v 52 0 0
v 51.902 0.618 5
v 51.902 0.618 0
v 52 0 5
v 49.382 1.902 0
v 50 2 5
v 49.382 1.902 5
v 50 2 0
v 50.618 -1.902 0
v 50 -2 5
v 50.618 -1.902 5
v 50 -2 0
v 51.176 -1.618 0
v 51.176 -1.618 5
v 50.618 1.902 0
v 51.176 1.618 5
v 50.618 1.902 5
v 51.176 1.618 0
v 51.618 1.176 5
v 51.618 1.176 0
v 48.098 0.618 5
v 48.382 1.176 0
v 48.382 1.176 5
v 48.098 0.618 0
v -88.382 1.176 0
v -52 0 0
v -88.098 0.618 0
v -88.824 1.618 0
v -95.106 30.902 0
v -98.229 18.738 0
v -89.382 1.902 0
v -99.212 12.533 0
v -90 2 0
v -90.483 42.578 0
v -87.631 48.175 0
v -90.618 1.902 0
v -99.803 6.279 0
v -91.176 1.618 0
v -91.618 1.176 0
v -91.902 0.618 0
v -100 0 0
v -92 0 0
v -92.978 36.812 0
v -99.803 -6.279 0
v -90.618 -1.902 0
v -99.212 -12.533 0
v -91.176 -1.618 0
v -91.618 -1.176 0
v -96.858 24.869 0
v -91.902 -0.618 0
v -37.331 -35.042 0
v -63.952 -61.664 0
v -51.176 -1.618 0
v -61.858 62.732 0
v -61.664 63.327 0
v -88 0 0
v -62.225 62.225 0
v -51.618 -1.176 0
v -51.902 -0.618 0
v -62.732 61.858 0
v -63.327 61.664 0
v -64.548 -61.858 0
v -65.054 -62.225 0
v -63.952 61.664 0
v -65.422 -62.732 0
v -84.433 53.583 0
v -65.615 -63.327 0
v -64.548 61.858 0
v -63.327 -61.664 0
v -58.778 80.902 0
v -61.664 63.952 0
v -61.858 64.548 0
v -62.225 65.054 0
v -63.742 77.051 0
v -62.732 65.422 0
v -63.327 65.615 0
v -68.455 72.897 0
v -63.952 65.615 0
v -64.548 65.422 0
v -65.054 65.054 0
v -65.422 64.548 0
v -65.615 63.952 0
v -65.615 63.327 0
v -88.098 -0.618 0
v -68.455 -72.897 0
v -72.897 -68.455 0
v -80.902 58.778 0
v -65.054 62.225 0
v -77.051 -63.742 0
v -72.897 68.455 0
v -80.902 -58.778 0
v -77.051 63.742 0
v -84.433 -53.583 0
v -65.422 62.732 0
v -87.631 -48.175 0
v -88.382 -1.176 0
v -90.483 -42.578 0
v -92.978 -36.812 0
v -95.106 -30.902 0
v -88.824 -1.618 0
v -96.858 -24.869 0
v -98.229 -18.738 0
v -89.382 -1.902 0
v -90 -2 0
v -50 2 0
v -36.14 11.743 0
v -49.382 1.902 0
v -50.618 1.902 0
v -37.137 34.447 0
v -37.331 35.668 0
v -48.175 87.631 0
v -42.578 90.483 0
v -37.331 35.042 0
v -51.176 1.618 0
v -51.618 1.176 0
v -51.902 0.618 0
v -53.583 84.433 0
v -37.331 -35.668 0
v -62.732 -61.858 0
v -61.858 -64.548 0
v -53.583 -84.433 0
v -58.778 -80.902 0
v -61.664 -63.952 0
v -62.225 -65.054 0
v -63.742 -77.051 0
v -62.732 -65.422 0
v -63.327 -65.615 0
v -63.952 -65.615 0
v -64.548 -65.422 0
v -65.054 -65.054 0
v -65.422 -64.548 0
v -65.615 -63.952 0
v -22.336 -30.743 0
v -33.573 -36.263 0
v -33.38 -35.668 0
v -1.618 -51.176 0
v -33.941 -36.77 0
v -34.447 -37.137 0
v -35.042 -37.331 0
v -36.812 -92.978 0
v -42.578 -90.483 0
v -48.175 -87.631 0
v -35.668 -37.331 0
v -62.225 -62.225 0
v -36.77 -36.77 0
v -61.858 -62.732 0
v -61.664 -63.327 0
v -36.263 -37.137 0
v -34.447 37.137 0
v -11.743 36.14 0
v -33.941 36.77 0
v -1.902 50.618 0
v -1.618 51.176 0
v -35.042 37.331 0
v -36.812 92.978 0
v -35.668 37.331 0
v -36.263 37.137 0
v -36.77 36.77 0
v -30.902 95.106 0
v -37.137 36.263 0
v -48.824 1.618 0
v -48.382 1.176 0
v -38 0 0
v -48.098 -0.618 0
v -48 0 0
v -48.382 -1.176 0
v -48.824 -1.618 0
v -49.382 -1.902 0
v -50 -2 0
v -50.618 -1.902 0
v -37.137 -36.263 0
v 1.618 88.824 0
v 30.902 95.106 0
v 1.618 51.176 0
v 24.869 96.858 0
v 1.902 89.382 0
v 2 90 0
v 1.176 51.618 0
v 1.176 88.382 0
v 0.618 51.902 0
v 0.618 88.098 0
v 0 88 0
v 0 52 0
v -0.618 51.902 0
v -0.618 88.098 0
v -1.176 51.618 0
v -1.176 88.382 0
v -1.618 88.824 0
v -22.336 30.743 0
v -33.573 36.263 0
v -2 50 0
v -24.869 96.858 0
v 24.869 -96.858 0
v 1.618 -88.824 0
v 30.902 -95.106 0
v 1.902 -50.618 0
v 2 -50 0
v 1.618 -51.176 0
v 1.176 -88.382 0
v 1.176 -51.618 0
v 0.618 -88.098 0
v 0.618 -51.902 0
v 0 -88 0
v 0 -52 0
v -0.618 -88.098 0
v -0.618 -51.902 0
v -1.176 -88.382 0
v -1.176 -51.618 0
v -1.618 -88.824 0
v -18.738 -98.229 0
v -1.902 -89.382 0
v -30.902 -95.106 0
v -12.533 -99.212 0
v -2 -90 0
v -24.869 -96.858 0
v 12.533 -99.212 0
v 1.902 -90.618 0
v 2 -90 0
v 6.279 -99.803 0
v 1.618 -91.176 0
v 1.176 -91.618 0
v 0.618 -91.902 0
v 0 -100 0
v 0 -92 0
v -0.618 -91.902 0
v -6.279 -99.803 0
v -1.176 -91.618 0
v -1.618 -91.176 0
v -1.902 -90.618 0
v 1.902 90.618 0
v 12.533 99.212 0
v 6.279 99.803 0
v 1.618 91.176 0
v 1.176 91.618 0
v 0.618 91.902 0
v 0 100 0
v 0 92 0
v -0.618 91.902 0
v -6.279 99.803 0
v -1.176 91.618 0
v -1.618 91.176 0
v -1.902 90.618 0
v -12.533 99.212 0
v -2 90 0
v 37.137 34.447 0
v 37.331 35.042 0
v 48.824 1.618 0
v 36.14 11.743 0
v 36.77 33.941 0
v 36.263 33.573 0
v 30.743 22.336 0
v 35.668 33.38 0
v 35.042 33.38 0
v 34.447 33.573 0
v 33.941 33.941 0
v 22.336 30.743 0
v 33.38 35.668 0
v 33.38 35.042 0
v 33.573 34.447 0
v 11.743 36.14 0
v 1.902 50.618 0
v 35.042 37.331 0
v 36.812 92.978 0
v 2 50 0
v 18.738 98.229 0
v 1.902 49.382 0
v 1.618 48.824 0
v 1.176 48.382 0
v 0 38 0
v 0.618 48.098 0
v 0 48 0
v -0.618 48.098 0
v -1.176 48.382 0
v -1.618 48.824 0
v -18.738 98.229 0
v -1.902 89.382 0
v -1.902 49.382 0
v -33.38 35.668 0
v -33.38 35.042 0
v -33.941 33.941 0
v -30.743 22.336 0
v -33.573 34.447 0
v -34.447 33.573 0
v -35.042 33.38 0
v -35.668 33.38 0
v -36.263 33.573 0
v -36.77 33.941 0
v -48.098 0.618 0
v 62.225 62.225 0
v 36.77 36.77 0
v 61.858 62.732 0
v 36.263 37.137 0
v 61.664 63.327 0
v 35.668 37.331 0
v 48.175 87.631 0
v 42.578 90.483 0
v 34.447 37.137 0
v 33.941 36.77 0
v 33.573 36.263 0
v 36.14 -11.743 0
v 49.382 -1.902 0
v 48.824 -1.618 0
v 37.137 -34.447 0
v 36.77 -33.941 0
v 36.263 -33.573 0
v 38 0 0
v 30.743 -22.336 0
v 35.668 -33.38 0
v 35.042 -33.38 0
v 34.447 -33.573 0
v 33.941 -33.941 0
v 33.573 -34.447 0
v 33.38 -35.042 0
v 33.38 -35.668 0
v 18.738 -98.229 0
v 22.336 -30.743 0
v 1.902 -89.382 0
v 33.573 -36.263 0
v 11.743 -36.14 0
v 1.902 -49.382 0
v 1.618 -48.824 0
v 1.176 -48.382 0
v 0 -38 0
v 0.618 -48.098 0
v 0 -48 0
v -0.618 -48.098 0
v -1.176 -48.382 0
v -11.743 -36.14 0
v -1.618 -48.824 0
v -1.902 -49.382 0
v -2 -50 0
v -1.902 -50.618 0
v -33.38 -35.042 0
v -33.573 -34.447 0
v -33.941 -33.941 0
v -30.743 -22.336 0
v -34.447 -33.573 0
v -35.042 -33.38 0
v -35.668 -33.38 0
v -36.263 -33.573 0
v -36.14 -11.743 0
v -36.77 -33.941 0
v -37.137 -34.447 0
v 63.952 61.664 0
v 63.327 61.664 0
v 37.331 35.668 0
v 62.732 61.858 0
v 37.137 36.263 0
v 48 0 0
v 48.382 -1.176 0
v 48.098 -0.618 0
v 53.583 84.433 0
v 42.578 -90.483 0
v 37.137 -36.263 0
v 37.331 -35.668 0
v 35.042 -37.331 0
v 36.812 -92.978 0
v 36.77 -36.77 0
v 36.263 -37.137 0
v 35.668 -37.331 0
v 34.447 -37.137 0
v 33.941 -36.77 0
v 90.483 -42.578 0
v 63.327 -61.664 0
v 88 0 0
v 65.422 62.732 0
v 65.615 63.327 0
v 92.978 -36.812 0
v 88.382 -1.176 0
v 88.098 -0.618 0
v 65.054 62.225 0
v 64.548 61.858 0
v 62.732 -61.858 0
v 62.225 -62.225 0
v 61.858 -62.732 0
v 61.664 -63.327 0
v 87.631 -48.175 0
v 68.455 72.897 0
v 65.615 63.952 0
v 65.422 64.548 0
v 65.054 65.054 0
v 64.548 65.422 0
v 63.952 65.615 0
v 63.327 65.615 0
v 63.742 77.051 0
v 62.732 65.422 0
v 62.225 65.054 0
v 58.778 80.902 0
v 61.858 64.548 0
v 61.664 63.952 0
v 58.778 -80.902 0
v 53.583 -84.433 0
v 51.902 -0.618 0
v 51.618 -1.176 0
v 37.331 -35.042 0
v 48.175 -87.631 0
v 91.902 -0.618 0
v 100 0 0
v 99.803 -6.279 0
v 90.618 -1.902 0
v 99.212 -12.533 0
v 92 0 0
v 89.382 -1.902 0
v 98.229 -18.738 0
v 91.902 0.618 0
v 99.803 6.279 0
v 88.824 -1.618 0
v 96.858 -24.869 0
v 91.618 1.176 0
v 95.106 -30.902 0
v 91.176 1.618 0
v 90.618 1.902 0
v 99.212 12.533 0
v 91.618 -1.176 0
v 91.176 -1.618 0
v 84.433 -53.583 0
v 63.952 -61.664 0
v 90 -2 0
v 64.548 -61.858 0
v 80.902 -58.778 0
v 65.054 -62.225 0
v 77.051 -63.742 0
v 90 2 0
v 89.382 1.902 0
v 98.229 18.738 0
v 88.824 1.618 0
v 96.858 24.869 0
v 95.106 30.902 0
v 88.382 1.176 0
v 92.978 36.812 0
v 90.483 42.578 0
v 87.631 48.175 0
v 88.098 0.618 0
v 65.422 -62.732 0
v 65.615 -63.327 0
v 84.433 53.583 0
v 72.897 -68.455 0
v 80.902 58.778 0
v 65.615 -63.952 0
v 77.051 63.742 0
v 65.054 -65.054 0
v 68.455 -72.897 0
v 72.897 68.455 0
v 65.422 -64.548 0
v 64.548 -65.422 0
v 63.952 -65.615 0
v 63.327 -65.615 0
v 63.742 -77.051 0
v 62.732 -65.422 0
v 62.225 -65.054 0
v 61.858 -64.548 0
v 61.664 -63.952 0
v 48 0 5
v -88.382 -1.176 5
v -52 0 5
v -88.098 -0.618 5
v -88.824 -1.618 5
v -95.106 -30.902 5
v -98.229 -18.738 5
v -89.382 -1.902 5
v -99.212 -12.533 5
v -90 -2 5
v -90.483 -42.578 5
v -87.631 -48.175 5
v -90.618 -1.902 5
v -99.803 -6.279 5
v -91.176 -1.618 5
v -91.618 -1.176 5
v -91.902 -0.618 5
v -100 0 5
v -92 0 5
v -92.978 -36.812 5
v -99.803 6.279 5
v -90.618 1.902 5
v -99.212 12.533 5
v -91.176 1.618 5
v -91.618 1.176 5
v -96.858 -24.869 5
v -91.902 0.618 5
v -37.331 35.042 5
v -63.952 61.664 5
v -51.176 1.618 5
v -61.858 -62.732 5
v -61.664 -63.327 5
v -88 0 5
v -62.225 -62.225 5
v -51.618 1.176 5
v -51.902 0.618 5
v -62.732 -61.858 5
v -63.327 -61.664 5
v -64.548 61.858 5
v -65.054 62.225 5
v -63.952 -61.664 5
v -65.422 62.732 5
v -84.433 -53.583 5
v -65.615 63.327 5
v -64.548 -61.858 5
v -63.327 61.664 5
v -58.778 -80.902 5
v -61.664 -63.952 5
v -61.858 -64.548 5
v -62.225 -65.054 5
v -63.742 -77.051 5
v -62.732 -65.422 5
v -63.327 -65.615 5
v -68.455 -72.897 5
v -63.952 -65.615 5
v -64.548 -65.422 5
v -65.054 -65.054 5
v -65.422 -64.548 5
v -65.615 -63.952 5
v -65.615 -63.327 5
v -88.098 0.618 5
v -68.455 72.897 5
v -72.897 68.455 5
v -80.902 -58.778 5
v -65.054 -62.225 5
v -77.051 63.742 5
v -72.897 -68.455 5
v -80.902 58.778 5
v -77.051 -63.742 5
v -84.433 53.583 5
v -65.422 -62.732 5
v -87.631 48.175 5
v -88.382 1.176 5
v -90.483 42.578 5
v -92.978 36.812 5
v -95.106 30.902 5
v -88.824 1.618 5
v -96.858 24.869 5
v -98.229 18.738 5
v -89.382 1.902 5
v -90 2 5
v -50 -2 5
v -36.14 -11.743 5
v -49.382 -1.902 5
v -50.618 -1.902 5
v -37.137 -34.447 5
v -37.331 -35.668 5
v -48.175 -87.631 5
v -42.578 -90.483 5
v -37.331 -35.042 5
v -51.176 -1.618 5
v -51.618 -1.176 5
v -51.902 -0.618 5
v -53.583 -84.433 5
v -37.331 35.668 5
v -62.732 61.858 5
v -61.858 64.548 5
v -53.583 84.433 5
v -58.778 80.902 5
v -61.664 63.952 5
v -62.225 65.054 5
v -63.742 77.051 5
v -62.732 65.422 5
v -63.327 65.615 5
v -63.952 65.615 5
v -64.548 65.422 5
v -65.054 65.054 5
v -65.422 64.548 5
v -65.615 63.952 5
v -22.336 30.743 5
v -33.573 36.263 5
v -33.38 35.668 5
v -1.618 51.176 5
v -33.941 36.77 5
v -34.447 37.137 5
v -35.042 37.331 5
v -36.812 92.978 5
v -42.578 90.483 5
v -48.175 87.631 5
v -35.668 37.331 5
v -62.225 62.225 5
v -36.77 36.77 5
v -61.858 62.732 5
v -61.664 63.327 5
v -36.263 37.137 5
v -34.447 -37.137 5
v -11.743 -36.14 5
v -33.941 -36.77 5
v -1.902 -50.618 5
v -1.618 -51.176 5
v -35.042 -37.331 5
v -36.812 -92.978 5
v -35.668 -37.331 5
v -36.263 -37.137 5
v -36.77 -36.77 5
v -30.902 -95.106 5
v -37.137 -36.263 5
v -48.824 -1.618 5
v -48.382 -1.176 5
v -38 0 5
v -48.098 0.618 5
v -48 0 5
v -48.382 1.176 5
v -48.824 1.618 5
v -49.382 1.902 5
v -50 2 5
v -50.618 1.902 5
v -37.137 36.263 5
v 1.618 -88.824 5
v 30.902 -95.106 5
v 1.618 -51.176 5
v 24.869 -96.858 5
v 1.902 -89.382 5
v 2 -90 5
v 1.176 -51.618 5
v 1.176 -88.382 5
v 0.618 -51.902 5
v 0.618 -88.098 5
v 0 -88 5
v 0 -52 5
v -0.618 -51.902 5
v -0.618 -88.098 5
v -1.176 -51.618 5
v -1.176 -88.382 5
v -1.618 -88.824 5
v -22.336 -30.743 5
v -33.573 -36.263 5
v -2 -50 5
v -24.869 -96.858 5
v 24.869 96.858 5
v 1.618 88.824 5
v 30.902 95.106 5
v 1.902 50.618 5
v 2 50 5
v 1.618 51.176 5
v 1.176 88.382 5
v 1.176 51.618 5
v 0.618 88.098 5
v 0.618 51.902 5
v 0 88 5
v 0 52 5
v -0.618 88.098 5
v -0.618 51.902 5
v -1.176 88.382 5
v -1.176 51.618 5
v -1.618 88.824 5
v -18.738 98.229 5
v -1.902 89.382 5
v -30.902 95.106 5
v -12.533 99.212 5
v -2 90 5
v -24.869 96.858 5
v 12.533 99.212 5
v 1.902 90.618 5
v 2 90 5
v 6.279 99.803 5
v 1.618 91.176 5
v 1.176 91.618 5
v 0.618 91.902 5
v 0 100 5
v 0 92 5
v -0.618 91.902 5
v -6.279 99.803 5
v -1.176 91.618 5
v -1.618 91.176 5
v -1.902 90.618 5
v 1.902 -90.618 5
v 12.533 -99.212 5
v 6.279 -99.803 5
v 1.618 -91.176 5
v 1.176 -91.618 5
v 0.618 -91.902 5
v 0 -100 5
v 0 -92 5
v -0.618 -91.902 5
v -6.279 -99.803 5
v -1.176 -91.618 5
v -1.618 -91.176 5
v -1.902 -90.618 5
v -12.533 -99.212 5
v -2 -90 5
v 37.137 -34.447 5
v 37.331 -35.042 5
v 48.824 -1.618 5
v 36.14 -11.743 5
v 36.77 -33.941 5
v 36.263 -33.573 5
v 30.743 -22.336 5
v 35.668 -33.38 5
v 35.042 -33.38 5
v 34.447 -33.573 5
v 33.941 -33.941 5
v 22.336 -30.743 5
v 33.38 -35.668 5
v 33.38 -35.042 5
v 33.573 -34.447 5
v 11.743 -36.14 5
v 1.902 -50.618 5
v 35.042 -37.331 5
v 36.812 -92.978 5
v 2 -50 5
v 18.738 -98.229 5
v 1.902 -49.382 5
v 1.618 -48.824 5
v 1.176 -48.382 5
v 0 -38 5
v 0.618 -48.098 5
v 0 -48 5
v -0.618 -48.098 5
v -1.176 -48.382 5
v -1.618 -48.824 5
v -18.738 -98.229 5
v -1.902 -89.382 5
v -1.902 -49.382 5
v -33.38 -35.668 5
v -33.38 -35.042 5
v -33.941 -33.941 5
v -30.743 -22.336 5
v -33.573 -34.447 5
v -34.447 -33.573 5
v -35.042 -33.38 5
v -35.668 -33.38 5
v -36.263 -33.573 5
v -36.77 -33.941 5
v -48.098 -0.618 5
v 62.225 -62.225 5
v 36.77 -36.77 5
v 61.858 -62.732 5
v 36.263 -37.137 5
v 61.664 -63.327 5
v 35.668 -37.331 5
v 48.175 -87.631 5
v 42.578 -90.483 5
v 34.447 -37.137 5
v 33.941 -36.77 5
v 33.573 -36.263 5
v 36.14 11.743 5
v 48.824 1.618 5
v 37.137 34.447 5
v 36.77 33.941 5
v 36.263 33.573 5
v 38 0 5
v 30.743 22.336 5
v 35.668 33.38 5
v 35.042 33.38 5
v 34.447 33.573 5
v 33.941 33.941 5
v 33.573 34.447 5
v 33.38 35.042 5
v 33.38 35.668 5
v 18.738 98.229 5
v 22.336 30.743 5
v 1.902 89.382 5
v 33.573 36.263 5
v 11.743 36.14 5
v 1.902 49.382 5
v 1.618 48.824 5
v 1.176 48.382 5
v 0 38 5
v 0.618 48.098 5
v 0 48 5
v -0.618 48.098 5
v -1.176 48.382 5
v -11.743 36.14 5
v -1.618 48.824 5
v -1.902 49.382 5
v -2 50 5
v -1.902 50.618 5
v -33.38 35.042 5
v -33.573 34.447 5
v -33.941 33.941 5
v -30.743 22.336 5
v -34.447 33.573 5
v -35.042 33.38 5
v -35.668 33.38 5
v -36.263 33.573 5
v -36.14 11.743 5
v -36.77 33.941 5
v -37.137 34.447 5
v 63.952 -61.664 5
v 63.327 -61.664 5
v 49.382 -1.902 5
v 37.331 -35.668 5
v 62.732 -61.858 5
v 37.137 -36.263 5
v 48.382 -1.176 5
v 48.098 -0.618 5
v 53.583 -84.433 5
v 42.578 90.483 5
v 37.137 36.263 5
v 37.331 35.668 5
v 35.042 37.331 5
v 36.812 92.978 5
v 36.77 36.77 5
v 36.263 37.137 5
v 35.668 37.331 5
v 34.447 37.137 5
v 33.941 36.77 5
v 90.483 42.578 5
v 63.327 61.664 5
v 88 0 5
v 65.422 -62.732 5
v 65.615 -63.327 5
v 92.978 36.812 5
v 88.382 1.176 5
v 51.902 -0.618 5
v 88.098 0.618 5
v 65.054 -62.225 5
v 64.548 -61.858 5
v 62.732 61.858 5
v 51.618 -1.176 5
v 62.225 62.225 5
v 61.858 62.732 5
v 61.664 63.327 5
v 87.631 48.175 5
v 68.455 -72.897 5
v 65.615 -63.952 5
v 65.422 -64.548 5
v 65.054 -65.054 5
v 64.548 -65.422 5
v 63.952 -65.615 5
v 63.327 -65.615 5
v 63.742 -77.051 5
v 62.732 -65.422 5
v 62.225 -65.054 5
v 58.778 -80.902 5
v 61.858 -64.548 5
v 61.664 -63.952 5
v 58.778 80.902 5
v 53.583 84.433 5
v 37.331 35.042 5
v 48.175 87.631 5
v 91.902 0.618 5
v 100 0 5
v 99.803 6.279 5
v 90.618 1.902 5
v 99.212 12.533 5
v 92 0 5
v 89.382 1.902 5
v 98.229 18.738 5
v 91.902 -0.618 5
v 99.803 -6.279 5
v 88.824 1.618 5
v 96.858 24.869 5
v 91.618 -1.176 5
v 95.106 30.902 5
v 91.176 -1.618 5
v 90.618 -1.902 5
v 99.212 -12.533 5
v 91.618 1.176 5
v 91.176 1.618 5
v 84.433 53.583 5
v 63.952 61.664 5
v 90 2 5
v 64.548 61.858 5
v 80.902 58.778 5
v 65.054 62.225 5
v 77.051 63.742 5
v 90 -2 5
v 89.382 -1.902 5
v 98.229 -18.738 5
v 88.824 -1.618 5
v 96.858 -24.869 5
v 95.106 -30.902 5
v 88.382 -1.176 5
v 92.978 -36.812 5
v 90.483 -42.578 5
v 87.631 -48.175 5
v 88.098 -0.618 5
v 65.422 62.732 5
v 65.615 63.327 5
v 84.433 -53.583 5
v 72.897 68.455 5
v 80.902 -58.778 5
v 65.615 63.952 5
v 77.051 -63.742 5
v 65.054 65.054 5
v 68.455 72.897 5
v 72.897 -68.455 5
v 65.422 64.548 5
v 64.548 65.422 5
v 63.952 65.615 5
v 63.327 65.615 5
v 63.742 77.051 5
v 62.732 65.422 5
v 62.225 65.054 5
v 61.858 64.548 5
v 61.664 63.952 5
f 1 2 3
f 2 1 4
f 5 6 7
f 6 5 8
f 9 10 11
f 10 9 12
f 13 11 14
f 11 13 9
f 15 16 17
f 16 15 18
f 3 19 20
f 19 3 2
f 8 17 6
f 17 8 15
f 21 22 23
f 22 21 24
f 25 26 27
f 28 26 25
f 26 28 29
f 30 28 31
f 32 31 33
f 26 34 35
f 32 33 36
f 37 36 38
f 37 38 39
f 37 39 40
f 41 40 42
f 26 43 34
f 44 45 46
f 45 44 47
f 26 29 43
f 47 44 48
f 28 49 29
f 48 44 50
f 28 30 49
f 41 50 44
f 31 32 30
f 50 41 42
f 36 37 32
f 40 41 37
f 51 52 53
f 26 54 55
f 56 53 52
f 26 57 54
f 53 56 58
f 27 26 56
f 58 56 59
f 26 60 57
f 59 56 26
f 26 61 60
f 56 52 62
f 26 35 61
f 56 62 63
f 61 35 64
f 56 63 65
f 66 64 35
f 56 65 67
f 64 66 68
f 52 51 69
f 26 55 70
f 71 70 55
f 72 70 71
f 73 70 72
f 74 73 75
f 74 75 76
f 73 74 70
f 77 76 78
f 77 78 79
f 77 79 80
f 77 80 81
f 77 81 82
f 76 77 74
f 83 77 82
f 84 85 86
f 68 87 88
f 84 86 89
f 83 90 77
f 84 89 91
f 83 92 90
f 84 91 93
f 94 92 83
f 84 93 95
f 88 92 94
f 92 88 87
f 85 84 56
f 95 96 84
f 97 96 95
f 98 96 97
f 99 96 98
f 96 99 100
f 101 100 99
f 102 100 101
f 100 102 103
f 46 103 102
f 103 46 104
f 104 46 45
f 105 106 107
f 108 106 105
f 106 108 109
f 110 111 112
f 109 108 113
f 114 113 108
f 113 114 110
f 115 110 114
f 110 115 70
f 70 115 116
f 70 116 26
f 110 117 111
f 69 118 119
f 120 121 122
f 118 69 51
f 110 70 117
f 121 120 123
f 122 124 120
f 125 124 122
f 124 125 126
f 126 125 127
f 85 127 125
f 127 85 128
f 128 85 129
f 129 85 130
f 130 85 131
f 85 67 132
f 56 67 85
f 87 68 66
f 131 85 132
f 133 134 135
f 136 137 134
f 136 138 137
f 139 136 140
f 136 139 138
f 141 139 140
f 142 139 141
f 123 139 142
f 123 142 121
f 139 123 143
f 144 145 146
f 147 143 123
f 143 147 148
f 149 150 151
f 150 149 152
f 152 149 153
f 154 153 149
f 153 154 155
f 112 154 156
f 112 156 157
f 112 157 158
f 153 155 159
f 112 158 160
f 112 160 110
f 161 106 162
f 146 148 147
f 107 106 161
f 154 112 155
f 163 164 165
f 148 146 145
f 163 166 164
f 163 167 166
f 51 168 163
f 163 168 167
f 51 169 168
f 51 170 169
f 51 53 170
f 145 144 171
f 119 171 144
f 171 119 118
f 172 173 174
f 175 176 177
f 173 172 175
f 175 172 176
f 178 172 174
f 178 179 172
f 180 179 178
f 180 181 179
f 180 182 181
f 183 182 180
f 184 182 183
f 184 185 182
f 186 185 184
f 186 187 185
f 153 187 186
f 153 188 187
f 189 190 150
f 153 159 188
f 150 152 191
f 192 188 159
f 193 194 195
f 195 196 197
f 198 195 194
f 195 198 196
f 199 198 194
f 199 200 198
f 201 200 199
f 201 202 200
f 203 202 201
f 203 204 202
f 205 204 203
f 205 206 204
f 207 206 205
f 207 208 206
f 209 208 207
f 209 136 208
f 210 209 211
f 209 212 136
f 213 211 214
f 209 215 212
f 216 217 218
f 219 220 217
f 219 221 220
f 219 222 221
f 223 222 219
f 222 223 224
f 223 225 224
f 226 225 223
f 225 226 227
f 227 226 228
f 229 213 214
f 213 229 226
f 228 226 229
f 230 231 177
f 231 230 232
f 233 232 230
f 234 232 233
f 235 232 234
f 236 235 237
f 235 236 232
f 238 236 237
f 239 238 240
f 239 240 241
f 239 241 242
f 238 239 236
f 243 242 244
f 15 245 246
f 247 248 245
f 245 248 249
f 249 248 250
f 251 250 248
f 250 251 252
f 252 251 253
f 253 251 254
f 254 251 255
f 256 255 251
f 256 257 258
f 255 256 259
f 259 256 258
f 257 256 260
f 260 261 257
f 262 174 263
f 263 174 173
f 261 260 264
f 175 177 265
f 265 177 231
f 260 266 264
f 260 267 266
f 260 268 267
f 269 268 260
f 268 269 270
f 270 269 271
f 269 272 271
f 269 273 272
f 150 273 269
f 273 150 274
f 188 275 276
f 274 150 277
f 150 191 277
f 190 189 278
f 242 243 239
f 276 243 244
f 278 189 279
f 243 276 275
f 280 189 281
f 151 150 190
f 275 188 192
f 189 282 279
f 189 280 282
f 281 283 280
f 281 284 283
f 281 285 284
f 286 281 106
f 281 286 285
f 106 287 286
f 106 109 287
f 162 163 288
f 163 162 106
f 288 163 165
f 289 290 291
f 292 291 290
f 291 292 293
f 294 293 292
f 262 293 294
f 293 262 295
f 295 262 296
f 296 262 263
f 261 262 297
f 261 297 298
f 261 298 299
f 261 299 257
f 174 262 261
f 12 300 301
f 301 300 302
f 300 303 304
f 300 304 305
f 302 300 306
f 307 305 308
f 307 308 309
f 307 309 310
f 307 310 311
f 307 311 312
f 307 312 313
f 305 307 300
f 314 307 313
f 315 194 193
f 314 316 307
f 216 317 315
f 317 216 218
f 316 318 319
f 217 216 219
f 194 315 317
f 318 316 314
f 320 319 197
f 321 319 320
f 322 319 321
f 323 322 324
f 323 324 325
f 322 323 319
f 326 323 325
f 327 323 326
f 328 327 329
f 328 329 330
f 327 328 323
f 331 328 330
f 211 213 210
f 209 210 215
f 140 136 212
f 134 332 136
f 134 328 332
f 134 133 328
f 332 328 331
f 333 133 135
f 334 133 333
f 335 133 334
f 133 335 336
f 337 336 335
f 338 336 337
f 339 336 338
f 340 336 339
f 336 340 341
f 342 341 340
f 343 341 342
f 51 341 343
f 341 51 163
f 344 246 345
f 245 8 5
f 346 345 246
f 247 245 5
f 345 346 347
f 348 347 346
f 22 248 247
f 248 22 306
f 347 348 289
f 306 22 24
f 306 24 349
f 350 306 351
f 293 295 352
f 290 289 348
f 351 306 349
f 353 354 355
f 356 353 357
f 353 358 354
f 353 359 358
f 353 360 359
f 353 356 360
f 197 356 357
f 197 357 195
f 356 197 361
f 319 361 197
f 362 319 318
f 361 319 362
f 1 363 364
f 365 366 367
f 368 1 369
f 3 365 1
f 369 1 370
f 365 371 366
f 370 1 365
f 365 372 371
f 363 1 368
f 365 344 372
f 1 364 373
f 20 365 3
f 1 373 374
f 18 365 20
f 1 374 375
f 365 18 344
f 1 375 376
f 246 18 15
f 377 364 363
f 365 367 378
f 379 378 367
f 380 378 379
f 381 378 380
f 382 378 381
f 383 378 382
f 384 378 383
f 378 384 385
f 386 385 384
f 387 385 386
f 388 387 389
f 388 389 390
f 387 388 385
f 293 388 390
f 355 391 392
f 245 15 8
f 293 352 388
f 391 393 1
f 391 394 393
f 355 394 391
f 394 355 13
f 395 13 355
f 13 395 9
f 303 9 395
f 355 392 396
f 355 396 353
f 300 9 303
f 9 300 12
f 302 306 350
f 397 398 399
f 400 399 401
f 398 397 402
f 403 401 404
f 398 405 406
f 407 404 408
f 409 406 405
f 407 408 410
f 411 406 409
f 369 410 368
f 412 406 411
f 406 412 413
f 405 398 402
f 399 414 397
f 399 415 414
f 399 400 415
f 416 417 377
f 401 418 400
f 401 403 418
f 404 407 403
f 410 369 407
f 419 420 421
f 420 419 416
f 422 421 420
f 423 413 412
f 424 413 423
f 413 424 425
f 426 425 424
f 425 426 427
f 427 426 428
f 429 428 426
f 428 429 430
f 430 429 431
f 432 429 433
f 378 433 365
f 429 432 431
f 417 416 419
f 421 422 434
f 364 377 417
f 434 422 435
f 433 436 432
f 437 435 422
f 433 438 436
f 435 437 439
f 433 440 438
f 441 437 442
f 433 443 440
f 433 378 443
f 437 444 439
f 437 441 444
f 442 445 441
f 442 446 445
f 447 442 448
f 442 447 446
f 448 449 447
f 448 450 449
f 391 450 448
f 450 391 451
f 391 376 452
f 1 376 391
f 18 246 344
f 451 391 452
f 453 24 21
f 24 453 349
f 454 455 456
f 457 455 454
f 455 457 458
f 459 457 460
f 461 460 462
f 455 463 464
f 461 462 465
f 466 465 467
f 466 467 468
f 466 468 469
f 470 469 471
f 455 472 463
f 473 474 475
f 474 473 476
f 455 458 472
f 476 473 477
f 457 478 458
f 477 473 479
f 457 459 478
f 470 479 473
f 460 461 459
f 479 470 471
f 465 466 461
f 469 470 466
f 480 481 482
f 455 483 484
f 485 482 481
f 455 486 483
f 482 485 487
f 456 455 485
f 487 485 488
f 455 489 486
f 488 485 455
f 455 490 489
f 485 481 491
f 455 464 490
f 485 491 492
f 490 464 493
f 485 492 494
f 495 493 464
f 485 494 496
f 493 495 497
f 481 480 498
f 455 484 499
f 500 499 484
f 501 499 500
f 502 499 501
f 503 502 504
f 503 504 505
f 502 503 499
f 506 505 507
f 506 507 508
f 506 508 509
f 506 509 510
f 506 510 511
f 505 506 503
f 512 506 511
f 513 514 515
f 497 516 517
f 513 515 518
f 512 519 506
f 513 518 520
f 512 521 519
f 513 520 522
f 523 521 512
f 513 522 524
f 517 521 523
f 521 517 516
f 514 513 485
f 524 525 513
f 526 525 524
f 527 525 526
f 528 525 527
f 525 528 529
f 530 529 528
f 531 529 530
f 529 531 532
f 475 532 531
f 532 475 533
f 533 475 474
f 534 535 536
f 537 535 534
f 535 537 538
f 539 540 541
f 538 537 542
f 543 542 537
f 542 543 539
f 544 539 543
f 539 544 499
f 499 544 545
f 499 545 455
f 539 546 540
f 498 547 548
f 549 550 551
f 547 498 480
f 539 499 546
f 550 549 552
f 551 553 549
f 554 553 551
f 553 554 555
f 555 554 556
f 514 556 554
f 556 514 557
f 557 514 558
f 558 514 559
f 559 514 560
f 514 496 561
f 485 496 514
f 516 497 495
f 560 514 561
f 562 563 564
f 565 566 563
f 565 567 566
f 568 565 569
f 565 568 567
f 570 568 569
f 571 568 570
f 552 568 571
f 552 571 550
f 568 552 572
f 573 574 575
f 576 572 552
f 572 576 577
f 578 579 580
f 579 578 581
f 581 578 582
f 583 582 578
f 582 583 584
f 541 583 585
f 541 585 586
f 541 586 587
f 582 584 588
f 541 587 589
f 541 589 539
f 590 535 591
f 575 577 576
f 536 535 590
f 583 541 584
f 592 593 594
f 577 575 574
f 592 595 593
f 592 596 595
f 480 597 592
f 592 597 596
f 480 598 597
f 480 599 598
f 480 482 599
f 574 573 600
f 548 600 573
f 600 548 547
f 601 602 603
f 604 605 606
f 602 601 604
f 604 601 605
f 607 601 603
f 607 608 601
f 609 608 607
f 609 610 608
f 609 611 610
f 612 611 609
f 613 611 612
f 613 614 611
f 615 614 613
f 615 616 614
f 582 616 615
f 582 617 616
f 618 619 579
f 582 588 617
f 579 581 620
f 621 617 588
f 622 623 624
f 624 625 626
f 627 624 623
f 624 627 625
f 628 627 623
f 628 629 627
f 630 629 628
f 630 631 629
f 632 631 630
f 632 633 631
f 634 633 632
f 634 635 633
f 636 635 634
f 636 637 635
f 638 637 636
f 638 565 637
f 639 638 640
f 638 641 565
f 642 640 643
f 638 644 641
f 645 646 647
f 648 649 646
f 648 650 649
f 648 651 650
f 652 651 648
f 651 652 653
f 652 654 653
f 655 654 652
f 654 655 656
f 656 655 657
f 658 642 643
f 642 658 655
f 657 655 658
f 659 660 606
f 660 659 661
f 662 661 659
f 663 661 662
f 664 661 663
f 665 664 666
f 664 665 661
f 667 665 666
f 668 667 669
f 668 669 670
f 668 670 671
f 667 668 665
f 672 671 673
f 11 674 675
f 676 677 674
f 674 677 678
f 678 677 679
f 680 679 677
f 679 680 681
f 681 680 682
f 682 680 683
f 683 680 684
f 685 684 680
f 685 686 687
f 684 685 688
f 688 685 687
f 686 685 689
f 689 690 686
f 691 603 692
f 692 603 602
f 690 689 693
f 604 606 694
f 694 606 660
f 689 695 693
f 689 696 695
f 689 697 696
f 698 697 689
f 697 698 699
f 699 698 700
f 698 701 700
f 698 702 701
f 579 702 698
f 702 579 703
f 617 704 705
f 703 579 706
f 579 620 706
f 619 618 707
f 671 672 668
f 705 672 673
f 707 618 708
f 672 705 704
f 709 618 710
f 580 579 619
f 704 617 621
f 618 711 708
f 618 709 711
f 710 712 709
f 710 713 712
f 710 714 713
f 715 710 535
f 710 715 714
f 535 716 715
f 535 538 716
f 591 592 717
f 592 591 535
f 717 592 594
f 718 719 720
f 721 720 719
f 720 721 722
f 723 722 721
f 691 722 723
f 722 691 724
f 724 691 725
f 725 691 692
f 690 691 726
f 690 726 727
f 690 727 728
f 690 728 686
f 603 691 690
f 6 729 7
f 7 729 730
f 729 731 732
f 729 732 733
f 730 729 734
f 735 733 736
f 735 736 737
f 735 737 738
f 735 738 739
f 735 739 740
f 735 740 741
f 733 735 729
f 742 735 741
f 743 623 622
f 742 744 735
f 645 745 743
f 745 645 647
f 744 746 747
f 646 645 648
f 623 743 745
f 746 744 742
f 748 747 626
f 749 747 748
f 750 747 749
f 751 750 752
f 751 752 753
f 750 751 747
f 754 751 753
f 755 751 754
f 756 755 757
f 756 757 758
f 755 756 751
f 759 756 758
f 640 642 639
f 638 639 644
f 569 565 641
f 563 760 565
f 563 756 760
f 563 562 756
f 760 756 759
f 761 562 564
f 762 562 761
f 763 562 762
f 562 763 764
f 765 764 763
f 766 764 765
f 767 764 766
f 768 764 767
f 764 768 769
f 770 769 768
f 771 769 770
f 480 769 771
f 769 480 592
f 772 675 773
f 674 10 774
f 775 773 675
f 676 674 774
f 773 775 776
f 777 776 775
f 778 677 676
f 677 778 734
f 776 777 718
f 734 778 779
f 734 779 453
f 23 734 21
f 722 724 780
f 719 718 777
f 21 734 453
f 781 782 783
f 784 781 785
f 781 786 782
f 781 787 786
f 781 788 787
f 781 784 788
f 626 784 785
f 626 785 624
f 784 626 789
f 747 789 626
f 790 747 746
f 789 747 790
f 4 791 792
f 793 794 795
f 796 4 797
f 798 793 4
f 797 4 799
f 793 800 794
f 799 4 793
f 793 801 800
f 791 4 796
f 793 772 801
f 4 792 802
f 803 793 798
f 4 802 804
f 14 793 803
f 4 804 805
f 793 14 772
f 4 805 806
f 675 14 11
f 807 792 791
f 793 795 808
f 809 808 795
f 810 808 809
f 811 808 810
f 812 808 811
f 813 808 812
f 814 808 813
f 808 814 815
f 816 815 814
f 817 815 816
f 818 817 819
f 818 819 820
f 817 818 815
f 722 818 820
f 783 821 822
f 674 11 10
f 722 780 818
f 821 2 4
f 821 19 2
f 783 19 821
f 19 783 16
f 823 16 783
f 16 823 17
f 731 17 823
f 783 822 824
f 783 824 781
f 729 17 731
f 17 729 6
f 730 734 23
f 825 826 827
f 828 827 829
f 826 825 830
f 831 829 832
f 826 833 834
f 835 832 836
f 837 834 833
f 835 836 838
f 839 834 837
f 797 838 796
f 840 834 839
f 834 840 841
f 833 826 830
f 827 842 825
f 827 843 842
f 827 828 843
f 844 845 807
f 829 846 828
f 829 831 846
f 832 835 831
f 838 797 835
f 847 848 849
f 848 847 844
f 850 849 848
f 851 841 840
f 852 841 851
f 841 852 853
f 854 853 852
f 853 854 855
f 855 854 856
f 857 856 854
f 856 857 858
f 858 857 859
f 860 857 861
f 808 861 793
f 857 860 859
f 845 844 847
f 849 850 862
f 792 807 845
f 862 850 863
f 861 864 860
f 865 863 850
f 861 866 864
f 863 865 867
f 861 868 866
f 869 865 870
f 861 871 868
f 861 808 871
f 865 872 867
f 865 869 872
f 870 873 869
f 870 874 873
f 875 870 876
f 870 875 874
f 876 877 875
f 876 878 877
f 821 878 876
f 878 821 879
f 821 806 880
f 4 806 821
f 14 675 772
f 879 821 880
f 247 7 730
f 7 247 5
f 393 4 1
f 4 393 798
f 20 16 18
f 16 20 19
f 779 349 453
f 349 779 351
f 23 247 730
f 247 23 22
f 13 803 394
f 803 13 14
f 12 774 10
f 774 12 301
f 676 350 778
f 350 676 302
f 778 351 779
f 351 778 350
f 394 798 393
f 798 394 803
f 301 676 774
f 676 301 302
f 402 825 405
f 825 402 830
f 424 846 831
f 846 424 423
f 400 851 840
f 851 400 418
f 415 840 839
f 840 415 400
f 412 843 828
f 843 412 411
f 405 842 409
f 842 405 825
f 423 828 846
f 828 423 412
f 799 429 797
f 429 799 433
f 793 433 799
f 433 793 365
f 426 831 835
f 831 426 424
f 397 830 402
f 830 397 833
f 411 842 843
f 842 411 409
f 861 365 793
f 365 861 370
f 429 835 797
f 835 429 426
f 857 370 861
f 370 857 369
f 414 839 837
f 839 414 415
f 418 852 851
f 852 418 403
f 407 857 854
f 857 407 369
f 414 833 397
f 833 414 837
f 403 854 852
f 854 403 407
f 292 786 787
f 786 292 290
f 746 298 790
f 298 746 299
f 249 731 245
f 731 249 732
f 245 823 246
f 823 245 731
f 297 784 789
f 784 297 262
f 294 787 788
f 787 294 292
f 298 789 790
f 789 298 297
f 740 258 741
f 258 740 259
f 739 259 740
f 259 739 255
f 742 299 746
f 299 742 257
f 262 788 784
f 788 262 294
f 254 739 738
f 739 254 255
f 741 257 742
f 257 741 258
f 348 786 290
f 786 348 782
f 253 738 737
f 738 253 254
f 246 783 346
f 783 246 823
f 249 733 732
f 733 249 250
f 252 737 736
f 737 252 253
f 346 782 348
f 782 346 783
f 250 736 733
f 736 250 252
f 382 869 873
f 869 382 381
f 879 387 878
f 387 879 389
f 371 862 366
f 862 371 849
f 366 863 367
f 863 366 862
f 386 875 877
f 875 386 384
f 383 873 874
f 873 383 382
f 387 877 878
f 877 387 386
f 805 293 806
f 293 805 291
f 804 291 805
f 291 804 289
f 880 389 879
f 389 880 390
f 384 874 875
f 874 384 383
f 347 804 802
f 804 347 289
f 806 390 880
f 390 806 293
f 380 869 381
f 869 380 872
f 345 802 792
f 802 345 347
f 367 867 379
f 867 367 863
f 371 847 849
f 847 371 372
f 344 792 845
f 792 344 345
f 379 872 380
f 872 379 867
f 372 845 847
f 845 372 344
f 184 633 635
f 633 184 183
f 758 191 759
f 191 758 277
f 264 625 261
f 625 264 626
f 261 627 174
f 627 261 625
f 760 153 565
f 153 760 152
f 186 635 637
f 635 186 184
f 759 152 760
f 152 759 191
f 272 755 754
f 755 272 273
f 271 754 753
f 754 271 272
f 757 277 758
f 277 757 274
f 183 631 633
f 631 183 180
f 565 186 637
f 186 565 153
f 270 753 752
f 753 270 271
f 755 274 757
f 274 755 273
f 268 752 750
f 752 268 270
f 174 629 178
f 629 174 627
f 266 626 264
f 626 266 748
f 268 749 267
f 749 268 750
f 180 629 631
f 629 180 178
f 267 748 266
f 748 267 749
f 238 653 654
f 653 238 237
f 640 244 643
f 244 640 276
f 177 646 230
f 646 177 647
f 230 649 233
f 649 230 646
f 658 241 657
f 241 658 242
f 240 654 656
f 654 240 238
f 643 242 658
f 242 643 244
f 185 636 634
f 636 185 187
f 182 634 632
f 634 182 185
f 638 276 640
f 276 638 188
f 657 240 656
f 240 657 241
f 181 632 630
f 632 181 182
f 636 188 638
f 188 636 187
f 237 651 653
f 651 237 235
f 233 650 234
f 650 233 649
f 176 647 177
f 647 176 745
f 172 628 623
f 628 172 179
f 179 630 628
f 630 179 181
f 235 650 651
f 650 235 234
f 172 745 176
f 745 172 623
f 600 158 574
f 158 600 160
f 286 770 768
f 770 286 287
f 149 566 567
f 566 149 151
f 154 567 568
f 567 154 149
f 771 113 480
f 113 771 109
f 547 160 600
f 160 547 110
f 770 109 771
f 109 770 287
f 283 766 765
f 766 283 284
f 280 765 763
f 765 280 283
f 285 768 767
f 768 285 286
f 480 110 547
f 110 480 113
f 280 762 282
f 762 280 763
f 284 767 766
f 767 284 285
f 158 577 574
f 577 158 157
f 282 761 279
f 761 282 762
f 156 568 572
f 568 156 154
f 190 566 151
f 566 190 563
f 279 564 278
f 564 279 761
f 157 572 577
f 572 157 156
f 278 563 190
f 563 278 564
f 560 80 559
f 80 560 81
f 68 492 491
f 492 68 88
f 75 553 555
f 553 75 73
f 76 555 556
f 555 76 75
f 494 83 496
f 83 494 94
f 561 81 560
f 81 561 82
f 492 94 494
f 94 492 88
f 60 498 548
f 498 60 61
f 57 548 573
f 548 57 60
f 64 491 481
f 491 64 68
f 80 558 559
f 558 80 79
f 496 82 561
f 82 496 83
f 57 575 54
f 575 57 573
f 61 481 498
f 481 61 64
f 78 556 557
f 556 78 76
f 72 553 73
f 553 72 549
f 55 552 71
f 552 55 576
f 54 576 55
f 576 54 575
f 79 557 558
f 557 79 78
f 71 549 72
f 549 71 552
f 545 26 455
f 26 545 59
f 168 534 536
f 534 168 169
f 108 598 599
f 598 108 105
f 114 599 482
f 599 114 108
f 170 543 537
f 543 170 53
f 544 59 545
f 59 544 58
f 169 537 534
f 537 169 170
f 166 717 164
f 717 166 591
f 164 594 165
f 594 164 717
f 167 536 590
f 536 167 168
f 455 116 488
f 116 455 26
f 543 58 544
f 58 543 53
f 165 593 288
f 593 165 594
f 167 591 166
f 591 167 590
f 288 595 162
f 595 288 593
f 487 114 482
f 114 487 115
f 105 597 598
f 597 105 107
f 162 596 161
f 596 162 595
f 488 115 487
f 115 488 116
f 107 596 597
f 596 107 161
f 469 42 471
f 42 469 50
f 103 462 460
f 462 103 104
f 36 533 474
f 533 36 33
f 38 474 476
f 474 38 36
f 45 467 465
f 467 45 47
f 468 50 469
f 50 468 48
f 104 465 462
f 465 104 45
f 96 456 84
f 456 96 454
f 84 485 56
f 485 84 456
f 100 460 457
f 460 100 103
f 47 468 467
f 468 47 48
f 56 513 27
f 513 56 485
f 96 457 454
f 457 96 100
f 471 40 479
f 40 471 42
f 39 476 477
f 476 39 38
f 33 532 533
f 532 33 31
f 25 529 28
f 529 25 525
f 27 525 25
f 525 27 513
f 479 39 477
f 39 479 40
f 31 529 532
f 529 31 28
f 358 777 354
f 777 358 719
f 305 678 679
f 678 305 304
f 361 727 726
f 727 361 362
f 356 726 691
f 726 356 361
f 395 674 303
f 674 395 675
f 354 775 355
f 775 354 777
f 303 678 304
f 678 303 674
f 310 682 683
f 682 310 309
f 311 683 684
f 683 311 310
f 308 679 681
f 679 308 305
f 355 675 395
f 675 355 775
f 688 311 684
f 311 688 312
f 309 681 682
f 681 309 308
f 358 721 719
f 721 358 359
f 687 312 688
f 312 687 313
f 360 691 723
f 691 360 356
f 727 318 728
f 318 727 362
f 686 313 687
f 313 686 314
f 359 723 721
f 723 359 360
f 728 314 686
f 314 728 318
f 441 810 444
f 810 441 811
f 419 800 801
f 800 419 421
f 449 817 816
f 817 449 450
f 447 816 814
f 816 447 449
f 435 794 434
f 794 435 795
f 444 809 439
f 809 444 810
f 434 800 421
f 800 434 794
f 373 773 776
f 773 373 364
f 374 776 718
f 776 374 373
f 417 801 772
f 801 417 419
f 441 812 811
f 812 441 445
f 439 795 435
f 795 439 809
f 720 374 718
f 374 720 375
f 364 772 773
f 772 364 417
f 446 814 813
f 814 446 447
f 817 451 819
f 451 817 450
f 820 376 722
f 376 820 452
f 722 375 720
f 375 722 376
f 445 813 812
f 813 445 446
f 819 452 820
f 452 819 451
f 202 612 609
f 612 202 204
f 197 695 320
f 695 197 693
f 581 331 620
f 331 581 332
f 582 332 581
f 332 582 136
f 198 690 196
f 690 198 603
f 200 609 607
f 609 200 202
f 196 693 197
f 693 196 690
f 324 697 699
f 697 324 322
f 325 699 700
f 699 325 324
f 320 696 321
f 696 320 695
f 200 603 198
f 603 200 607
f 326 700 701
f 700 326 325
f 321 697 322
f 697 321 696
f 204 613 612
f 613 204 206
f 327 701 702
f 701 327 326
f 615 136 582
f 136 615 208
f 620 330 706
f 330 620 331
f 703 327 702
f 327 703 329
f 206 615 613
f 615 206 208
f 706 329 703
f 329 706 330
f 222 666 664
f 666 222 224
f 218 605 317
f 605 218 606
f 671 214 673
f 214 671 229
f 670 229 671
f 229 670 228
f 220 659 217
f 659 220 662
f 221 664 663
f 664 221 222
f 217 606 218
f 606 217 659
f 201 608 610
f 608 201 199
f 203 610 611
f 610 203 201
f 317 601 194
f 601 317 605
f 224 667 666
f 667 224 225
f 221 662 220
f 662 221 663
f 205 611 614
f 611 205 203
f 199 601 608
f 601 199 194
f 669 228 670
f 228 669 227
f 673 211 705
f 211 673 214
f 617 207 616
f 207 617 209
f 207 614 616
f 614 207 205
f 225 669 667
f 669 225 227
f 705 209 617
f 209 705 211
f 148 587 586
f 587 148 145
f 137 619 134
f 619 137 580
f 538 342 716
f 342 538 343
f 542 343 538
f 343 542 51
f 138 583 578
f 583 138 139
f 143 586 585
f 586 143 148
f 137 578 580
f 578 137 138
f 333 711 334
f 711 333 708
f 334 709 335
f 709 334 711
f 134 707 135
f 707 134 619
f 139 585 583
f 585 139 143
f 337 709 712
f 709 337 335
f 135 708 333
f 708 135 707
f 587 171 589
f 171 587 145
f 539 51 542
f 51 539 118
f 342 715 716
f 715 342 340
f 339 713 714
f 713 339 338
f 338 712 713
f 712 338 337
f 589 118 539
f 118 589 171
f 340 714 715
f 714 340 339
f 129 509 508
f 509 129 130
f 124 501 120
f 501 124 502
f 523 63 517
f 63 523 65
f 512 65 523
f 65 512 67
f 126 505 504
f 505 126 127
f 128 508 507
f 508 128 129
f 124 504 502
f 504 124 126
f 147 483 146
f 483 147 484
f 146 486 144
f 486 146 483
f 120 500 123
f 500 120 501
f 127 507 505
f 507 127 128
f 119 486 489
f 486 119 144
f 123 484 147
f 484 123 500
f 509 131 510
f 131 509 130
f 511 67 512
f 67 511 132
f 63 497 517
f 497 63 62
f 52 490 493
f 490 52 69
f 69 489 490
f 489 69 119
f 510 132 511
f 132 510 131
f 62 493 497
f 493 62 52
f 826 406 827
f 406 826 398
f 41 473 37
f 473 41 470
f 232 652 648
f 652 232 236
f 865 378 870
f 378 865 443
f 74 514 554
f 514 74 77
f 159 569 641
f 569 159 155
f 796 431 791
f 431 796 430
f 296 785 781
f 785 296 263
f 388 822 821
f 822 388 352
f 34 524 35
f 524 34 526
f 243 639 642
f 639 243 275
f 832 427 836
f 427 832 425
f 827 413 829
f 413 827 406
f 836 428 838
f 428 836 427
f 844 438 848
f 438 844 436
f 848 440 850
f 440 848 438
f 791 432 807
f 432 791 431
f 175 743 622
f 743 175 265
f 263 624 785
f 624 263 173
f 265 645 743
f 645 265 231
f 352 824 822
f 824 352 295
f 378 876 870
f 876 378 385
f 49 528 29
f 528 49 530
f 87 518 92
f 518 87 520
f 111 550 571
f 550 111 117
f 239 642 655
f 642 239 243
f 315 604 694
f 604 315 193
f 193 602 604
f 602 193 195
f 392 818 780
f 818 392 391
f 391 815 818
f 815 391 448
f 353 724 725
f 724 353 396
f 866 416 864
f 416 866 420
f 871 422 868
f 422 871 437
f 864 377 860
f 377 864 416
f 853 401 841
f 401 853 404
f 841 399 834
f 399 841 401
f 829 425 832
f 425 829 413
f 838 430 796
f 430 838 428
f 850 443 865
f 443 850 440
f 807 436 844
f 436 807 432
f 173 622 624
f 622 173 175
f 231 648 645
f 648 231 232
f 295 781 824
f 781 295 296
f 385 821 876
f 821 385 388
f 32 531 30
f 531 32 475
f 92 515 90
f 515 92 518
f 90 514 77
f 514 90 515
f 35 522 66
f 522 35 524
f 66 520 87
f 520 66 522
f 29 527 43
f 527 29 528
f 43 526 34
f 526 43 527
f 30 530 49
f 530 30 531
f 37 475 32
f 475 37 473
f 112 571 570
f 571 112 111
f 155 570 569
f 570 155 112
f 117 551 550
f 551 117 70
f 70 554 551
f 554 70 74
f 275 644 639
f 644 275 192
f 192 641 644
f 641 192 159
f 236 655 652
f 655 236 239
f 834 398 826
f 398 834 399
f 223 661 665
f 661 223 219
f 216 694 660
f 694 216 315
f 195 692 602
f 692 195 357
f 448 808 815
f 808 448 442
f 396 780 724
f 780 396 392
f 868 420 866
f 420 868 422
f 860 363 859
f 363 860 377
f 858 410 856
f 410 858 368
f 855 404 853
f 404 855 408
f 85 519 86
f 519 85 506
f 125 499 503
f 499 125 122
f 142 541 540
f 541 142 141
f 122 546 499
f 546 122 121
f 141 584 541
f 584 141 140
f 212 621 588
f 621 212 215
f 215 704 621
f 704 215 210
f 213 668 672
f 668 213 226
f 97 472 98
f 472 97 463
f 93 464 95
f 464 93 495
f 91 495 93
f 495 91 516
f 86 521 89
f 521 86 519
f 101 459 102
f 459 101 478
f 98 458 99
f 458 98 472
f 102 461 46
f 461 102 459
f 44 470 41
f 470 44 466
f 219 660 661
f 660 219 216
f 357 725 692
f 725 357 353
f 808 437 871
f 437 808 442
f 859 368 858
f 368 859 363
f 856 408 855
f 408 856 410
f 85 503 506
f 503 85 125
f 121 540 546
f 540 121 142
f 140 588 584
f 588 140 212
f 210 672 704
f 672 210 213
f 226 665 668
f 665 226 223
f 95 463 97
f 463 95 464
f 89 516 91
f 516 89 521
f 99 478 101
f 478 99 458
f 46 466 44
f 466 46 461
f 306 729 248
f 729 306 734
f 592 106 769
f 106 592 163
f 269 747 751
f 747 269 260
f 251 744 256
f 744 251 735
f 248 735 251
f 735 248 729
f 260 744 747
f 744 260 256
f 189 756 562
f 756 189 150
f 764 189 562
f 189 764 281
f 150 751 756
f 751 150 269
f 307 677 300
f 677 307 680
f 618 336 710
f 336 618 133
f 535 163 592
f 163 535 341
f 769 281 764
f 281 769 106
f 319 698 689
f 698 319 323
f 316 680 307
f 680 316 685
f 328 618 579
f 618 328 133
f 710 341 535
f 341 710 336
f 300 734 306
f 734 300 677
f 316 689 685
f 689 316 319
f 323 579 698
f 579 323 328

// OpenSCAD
$fn=20;
difference(){
    //primary puck
    cylinder(r=100,h=5,$fn=100);
    //center hole for tools
    cylinder(r=38,h=5);
    //4mm holes for mounting things
    for (i =[0,45,90,135,180,-45,-90,-135]){
        rotate([0,0,i]){
            translate([50,0,0])cylinder(r=2,h=5);
            translate([90,0,0])cylinder(r=2,h=5);
        }
    }
}
